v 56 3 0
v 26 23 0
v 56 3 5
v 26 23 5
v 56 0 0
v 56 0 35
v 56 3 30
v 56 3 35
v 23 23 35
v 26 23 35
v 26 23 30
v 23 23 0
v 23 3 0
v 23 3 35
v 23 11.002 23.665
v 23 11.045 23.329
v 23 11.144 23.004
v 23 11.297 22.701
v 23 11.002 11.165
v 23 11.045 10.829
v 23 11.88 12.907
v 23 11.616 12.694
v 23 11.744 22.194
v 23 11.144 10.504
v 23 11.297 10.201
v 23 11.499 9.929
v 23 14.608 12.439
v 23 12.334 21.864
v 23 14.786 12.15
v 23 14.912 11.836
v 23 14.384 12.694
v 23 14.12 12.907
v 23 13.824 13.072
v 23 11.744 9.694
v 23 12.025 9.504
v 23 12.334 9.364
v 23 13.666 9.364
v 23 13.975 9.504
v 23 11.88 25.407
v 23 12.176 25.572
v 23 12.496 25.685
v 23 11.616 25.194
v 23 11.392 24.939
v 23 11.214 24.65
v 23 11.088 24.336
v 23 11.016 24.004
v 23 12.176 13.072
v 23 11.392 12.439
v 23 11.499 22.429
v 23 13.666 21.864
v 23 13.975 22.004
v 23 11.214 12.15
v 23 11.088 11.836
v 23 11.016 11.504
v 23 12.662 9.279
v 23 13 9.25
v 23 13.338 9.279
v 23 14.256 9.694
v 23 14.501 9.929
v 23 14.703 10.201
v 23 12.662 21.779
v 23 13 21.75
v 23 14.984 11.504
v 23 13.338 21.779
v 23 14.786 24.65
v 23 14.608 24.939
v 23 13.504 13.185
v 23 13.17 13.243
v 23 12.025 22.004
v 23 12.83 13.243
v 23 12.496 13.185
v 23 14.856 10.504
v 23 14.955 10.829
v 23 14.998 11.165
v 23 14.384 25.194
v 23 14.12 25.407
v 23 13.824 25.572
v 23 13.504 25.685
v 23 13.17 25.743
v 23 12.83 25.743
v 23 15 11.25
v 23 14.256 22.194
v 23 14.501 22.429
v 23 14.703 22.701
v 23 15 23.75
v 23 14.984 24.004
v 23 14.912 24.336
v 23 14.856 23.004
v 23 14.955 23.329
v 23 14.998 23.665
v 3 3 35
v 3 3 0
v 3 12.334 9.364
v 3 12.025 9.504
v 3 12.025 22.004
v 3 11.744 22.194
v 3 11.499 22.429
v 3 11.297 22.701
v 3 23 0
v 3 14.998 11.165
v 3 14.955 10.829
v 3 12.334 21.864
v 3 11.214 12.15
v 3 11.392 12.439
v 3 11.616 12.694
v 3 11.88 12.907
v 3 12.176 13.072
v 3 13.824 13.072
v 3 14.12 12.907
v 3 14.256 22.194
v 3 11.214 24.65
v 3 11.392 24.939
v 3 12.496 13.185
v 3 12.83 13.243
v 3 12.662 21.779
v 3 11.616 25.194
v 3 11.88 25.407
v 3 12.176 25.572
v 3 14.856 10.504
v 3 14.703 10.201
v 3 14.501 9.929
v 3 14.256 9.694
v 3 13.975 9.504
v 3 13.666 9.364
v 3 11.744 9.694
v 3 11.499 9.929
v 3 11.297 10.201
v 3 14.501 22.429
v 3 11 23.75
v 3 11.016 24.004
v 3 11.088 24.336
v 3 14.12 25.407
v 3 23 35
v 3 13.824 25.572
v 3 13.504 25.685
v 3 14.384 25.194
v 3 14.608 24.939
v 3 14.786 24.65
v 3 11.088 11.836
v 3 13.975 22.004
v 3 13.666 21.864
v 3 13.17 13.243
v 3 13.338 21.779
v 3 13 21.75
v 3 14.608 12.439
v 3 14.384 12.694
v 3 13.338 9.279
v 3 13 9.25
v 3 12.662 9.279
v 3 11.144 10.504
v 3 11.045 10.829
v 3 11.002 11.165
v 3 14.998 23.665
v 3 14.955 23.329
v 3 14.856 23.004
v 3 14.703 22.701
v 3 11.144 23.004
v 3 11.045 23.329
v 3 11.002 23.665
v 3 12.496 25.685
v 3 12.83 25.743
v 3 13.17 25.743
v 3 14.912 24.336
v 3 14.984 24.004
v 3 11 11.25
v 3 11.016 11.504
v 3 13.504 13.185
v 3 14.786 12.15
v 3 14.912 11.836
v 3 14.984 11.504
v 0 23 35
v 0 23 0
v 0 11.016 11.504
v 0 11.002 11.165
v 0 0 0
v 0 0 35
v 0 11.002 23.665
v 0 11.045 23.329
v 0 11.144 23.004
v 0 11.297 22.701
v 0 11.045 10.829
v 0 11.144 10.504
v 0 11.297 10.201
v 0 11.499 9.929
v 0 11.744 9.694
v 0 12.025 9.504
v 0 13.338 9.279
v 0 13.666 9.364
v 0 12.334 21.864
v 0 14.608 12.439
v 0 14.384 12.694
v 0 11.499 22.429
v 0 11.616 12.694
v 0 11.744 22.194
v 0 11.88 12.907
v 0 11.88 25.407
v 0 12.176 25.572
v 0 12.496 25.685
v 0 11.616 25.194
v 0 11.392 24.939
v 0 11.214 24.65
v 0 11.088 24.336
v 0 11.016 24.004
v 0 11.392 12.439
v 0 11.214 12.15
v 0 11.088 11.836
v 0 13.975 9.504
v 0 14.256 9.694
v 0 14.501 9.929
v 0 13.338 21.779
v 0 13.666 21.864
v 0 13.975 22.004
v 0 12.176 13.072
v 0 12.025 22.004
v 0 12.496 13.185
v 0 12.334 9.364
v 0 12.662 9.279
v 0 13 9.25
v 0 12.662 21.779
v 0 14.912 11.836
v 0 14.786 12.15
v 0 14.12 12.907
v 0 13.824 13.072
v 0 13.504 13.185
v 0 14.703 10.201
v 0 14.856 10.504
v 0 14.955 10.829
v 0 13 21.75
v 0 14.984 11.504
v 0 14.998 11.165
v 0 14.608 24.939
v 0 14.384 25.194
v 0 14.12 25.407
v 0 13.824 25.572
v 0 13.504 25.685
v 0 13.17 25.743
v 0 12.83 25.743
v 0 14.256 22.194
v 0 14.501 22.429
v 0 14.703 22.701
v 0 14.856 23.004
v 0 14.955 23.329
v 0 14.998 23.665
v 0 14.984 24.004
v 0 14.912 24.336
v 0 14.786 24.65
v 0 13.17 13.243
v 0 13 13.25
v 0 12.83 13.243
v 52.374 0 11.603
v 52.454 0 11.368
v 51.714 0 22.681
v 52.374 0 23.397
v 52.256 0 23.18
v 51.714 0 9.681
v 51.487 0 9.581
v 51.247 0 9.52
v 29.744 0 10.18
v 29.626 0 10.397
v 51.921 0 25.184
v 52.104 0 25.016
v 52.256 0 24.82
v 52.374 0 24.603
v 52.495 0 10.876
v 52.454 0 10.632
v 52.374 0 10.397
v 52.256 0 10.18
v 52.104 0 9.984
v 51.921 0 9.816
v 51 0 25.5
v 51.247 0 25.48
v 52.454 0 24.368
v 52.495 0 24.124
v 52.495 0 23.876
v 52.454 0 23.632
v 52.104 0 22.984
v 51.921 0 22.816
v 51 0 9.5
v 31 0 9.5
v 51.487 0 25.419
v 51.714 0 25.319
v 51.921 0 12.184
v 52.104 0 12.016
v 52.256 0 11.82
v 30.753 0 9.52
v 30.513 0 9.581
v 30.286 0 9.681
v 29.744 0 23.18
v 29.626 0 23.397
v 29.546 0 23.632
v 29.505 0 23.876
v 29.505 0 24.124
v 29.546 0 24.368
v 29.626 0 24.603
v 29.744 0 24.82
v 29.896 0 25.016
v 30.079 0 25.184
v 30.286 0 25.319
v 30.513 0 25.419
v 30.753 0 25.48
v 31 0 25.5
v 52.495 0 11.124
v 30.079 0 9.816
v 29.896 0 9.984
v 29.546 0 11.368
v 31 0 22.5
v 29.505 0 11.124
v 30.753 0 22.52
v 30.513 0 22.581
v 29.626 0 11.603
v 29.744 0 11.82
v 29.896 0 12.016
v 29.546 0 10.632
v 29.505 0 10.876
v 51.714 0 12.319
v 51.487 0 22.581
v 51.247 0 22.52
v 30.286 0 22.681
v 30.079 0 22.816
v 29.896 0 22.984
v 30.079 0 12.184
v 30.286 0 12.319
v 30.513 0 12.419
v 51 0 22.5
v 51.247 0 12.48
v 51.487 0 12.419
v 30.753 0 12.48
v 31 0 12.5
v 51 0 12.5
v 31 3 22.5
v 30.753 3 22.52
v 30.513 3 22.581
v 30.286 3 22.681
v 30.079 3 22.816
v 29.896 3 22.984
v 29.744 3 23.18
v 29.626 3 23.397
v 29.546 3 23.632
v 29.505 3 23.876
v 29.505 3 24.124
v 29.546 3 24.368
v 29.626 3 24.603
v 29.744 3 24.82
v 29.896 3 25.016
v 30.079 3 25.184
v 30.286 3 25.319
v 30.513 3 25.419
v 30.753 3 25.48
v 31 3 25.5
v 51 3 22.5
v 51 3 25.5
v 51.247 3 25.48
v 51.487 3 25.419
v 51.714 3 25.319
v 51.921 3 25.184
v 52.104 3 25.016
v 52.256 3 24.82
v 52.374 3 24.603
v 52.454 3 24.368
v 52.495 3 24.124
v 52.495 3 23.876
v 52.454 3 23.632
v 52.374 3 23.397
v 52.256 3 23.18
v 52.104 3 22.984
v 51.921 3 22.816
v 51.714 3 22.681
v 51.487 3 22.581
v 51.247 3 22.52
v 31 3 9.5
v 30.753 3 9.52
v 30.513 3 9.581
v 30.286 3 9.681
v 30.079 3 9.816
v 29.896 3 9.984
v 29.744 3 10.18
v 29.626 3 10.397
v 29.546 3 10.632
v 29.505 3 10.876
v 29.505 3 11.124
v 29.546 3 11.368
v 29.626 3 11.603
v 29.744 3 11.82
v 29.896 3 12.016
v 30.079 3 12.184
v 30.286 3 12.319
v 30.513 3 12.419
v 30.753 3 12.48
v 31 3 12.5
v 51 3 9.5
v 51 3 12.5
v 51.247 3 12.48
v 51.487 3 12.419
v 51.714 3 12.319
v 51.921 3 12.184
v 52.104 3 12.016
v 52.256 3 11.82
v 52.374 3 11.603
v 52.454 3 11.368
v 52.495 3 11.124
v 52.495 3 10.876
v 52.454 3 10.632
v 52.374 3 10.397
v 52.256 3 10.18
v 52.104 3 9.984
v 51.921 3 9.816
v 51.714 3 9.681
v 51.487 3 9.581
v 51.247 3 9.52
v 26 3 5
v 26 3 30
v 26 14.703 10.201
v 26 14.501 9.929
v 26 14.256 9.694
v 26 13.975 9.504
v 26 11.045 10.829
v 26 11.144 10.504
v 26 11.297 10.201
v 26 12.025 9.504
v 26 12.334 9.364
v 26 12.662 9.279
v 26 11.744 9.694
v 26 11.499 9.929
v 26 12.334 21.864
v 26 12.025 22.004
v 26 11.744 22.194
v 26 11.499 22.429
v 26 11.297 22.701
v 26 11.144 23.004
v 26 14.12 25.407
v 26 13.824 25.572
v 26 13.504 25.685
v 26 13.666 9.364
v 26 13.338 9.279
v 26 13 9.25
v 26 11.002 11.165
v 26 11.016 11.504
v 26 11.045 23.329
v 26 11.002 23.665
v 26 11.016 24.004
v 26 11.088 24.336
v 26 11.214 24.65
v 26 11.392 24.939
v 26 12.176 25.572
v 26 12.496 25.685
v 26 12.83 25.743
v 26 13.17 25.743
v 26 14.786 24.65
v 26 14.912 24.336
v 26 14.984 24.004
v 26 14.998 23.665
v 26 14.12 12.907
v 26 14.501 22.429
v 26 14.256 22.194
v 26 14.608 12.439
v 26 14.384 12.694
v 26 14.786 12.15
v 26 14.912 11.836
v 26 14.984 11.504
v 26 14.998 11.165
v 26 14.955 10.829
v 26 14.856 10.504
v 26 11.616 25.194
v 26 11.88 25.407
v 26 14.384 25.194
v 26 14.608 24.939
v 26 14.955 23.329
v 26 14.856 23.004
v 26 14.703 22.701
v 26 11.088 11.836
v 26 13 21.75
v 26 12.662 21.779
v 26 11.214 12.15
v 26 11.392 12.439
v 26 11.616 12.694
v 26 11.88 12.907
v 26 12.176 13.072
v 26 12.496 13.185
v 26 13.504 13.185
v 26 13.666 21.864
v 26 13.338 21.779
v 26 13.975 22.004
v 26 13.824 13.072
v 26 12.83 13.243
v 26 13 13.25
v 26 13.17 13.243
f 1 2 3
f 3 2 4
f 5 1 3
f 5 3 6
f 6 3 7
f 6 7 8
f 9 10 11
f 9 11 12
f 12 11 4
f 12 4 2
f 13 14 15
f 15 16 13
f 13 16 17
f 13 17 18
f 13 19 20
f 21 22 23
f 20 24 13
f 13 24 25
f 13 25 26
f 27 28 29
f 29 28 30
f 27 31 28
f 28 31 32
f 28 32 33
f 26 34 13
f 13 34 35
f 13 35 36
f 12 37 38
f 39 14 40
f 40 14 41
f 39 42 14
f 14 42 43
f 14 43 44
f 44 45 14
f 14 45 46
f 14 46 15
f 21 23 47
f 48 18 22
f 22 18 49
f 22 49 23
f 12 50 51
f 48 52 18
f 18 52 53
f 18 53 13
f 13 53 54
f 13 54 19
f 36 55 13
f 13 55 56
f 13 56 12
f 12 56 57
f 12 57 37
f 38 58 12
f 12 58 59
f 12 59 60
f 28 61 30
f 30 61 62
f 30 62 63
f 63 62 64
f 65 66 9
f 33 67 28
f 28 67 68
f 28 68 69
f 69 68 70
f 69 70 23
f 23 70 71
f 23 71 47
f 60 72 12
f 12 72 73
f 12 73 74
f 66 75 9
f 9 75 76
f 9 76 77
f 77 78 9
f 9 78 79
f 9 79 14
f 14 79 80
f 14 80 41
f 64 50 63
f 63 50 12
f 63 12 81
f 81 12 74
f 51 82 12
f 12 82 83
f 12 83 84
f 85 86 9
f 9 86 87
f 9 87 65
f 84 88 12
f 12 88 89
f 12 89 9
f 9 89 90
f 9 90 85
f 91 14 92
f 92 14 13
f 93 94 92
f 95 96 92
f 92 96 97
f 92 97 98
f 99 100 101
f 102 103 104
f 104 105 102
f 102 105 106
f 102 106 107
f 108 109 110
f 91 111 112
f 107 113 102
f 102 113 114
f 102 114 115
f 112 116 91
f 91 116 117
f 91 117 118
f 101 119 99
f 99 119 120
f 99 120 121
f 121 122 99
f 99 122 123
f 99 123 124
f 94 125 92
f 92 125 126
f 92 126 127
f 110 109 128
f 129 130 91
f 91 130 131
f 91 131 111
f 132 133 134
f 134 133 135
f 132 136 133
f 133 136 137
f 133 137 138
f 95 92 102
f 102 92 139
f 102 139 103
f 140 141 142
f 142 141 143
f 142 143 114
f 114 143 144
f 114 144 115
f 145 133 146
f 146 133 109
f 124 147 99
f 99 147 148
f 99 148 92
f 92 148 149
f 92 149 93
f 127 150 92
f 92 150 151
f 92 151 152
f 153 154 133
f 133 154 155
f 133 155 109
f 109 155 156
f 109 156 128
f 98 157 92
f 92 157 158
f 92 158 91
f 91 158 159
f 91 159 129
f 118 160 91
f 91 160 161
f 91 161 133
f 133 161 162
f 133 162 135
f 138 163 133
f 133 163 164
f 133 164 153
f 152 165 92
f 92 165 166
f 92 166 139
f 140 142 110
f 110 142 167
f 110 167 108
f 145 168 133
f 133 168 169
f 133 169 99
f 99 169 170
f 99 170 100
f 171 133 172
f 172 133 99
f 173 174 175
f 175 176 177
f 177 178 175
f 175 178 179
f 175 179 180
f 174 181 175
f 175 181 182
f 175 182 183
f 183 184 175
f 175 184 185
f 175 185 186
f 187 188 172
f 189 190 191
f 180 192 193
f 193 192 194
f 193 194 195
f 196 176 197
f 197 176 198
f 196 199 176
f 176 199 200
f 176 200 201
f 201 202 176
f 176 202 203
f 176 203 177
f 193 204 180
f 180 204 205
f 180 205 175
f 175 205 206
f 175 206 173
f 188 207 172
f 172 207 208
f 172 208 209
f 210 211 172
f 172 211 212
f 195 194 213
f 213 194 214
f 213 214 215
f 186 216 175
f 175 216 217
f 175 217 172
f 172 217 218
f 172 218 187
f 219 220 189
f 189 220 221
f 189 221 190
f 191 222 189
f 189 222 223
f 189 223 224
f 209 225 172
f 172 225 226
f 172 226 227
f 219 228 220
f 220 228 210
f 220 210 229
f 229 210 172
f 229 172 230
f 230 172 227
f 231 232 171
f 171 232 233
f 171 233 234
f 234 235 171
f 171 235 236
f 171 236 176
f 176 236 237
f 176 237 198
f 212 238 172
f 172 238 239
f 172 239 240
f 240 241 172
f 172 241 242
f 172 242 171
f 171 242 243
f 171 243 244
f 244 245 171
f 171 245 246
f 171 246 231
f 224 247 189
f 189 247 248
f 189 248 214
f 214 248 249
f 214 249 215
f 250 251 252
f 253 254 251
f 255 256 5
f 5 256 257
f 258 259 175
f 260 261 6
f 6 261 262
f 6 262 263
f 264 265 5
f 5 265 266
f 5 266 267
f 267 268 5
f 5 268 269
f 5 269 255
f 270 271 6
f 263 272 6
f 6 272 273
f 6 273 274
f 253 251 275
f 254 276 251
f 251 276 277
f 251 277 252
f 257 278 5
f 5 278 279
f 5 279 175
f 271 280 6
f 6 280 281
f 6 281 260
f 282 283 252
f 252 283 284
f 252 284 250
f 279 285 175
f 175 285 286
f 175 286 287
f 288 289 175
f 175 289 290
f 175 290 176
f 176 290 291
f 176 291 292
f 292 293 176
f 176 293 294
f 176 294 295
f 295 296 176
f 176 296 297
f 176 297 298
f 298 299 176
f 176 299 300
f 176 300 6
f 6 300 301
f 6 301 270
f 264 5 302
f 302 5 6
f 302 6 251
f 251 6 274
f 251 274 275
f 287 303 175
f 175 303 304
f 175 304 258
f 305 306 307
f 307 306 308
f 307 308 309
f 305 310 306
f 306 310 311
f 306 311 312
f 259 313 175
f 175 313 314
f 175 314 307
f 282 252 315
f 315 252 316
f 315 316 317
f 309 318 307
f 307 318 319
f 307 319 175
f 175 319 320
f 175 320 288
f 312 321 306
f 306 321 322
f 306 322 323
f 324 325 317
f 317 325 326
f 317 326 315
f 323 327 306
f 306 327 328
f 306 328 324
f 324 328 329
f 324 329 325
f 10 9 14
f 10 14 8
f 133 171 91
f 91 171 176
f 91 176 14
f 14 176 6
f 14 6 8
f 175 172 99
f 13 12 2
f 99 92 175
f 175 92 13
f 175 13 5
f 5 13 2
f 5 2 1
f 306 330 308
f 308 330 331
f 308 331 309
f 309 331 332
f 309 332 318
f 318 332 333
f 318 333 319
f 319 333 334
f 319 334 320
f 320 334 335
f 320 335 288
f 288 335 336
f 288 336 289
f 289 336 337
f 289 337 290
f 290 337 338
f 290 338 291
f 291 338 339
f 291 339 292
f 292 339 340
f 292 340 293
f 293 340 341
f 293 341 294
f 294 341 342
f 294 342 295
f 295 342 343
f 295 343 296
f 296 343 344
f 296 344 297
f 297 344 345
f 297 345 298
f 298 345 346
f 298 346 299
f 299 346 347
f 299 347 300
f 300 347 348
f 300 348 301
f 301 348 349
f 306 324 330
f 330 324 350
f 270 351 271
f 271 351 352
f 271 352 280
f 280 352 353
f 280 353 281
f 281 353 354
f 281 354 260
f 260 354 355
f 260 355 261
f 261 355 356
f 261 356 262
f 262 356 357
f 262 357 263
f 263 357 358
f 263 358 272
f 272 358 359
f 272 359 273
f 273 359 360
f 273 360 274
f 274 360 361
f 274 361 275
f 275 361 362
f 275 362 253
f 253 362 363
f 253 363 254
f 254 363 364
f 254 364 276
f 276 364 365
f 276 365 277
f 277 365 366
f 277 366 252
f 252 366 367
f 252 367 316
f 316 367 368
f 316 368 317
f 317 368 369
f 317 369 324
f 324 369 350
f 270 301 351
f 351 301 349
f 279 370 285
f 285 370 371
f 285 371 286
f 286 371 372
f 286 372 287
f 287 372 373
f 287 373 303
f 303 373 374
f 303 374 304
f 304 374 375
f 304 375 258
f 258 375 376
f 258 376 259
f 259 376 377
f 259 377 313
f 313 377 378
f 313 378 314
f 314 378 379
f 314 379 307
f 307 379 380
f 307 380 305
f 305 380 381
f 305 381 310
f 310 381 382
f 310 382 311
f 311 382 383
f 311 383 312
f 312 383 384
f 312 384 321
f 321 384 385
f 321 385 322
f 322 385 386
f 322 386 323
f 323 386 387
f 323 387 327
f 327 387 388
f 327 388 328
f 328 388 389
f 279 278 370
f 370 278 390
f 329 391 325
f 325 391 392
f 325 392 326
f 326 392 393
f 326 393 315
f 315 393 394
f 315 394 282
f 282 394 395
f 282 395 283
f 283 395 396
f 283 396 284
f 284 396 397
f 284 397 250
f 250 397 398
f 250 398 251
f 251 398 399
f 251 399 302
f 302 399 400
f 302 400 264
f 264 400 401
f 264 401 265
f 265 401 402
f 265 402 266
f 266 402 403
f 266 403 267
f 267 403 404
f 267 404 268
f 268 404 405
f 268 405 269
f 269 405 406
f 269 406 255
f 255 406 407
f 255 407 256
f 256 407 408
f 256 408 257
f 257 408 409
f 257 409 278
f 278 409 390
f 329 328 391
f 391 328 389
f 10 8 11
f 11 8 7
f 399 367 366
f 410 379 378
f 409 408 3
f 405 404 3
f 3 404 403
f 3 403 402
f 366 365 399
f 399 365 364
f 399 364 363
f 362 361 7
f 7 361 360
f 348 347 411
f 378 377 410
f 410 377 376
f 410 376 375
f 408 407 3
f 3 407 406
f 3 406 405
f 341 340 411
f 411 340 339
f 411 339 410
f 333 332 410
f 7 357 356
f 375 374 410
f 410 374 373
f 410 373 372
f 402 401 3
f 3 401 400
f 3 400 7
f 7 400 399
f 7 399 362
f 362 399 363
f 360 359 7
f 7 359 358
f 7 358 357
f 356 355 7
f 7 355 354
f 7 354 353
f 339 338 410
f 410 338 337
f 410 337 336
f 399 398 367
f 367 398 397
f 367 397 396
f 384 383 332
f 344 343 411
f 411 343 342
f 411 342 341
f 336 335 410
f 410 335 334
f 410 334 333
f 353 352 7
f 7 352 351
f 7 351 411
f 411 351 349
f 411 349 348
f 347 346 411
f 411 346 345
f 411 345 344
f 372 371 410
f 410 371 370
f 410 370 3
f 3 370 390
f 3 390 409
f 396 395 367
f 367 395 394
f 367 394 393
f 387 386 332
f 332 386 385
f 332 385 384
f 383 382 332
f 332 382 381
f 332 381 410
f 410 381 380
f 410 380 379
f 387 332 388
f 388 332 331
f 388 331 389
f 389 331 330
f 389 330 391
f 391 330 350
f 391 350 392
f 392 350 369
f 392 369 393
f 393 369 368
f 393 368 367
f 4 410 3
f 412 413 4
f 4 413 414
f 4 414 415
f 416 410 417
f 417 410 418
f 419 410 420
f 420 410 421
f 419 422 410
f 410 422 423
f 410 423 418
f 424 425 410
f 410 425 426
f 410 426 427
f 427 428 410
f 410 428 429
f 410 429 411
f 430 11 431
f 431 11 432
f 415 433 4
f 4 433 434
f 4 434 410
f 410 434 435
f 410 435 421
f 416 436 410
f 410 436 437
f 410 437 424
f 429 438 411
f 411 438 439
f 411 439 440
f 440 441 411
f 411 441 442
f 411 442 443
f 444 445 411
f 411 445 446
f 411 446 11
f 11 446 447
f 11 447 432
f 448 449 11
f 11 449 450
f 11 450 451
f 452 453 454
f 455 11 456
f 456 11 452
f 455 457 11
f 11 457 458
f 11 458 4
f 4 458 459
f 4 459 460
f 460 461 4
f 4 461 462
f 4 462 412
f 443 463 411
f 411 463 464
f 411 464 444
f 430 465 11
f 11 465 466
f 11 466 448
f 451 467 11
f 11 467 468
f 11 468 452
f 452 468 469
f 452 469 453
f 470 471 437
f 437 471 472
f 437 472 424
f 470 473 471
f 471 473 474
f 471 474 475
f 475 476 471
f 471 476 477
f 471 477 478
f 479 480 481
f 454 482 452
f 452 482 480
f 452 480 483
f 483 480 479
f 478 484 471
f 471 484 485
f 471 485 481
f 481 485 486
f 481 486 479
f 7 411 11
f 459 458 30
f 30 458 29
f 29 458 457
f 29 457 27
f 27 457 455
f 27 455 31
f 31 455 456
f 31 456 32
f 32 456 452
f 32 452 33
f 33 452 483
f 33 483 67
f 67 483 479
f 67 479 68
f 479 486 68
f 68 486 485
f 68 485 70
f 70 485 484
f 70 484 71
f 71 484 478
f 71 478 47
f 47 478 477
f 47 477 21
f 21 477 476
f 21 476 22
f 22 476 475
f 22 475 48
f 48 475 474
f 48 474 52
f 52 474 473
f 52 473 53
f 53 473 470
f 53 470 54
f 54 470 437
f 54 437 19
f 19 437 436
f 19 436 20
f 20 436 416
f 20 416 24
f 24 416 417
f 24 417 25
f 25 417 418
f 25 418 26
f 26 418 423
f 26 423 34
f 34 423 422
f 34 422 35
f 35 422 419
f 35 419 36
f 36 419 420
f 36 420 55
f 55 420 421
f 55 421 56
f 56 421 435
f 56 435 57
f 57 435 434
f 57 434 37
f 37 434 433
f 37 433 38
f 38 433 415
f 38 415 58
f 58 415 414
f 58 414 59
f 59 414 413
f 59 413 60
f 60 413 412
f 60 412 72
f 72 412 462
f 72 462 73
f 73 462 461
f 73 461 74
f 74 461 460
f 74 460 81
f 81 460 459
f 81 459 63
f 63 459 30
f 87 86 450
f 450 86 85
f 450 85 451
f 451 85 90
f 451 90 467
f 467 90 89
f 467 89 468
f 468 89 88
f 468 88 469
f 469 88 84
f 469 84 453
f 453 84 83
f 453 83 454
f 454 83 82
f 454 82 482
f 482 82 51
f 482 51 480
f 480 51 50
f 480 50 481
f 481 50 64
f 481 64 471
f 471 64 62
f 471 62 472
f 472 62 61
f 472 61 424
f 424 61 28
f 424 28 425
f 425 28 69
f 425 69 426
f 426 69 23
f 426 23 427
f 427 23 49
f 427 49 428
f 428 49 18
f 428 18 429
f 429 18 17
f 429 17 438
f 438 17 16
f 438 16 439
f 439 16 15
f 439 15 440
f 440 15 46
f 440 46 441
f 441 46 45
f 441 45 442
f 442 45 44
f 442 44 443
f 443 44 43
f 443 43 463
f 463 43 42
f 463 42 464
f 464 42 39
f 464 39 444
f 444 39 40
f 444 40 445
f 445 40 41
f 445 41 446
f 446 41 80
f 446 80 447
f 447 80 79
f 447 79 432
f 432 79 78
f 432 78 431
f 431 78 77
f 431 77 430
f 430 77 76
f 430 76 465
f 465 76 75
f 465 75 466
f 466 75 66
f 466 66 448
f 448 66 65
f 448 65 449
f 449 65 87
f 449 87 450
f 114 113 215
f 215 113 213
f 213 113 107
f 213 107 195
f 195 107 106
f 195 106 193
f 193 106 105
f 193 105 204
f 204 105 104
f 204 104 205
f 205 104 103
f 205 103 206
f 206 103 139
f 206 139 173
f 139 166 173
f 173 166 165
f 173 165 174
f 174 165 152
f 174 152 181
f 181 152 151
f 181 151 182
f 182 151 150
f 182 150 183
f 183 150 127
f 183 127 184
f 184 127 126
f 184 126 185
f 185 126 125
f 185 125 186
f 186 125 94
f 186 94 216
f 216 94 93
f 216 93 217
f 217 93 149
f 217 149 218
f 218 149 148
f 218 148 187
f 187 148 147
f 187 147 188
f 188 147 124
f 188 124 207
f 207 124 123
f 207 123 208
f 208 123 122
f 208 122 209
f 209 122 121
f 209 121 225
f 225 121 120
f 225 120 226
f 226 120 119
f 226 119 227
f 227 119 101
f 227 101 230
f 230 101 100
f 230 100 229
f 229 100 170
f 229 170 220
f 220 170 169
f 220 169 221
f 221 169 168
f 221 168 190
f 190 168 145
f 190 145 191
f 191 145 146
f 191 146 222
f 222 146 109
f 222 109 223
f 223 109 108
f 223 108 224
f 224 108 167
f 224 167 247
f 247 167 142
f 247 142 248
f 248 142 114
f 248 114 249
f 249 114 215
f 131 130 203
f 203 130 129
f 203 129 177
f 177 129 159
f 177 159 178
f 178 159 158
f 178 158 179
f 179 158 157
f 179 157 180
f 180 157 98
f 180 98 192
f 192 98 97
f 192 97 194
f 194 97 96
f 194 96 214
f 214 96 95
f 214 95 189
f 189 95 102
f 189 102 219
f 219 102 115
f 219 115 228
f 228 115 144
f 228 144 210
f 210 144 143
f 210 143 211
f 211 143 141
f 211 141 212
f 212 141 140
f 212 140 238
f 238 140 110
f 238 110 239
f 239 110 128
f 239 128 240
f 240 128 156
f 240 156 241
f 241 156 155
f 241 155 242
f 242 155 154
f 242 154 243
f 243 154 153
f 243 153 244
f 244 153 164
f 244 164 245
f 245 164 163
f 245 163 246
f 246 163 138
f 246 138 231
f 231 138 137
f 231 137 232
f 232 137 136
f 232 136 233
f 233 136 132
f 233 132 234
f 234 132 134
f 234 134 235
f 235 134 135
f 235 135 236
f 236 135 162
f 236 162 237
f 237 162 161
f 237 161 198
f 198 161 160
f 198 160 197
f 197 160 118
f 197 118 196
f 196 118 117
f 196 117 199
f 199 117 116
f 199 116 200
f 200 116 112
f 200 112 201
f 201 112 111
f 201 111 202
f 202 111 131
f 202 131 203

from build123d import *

# Parameters (mm, degrees)
BOSS_EXTRUDE1_DEPTH     = 35
CUT_EXTRUDE2_DEPTH      = 21
CUT_EXTRUDE2_DEPTH_BACK = 4
BOSS_EXTRUDE2_DEPTH     = 35
SKETCH5_W               = 30
SKETCH5_H               = 25
CUT_EXTRUDE3_DEPTH      = 20
SKETCH6_R               = 2
CUT_EXTRUDE4_DEPTH      = 27


with BuildPart() as part:
    # Sketch1 → Boss-Extrude1 (new body)
    with BuildSketch(Plane.XY):
        Polygon((0, 23), (0, 0), (56, 0), (56, 3), (26, 3), (26, 23), (23, 23), (23, 3), (3, 3), (3, 23), align=None)
    extrude(amount=BOSS_EXTRUDE1_DEPTH)

    # Sketch3 → Cut-Extrude2 (cut, two sides)
    with BuildSketch(Plane(origin=(0, 3, 0), x_dir=(1, 0, 0), z_dir=(0, 1, 0))) as cut_extrude2_sk:
        with BuildLine():
            Line((31, -9.5), (51, -9.5))
            ThreePointArc((51, -9.5), (52.5, -11), (51, -12.5))
            Line((51, -12.5), (31, -12.5))
            ThreePointArc((31, -12.5), (29.5, -11), (31, -9.5))
        make_face()
        with BuildLine():
            Line((31, -25.5), (51, -25.5))
            ThreePointArc((51, -25.5), (52.5, -24), (51, -22.5))
            Line((51, -22.5), (31, -22.5))
            ThreePointArc((31, -22.5), (29.5, -24), (31, -25.5))
        make_face()
    extrude(amount=CUT_EXTRUDE2_DEPTH, mode=Mode.SUBTRACT)
    extrude(cut_extrude2_sk.sketch, amount=-CUT_EXTRUDE2_DEPTH_BACK, mode=Mode.SUBTRACT)

    # Sketch4 → Boss-Extrude2 (add, through all)
    with BuildSketch(Plane.XY.offset(35)):
        Polygon((26, 23), (26, 3), (56, 3), align=None)
    extrude(amount=-BOSS_EXTRUDE2_DEPTH)

    # Sketch5 → Cut-Extrude3 (cut)
    with BuildSketch(Plane(origin=(0, 23, 0), x_dir=(1, 0, 0), z_dir=(0, 1, 0))):
        with Locations((41, -17.5)):
            Rectangle(SKETCH5_W, SKETCH5_H)
    extrude(amount=-CUT_EXTRUDE3_DEPTH, mode=Mode.SUBTRACT)

    # Sketch6 → Cut-Extrude4 (cut, through all)
    with BuildSketch(Plane(origin=(26, 0, 0), x_dir=(0, 0, -1), z_dir=(1, 0, 0))):
        with Locations((-23.75, 13)):
            Circle(SKETCH6_R)
        with Locations((-11.25, 13)):
            Circle(SKETCH6_R)
    extrude(amount=-CUT_EXTRUDE4_DEPTH, mode=Mode.SUBTRACT)


solid = part.part
